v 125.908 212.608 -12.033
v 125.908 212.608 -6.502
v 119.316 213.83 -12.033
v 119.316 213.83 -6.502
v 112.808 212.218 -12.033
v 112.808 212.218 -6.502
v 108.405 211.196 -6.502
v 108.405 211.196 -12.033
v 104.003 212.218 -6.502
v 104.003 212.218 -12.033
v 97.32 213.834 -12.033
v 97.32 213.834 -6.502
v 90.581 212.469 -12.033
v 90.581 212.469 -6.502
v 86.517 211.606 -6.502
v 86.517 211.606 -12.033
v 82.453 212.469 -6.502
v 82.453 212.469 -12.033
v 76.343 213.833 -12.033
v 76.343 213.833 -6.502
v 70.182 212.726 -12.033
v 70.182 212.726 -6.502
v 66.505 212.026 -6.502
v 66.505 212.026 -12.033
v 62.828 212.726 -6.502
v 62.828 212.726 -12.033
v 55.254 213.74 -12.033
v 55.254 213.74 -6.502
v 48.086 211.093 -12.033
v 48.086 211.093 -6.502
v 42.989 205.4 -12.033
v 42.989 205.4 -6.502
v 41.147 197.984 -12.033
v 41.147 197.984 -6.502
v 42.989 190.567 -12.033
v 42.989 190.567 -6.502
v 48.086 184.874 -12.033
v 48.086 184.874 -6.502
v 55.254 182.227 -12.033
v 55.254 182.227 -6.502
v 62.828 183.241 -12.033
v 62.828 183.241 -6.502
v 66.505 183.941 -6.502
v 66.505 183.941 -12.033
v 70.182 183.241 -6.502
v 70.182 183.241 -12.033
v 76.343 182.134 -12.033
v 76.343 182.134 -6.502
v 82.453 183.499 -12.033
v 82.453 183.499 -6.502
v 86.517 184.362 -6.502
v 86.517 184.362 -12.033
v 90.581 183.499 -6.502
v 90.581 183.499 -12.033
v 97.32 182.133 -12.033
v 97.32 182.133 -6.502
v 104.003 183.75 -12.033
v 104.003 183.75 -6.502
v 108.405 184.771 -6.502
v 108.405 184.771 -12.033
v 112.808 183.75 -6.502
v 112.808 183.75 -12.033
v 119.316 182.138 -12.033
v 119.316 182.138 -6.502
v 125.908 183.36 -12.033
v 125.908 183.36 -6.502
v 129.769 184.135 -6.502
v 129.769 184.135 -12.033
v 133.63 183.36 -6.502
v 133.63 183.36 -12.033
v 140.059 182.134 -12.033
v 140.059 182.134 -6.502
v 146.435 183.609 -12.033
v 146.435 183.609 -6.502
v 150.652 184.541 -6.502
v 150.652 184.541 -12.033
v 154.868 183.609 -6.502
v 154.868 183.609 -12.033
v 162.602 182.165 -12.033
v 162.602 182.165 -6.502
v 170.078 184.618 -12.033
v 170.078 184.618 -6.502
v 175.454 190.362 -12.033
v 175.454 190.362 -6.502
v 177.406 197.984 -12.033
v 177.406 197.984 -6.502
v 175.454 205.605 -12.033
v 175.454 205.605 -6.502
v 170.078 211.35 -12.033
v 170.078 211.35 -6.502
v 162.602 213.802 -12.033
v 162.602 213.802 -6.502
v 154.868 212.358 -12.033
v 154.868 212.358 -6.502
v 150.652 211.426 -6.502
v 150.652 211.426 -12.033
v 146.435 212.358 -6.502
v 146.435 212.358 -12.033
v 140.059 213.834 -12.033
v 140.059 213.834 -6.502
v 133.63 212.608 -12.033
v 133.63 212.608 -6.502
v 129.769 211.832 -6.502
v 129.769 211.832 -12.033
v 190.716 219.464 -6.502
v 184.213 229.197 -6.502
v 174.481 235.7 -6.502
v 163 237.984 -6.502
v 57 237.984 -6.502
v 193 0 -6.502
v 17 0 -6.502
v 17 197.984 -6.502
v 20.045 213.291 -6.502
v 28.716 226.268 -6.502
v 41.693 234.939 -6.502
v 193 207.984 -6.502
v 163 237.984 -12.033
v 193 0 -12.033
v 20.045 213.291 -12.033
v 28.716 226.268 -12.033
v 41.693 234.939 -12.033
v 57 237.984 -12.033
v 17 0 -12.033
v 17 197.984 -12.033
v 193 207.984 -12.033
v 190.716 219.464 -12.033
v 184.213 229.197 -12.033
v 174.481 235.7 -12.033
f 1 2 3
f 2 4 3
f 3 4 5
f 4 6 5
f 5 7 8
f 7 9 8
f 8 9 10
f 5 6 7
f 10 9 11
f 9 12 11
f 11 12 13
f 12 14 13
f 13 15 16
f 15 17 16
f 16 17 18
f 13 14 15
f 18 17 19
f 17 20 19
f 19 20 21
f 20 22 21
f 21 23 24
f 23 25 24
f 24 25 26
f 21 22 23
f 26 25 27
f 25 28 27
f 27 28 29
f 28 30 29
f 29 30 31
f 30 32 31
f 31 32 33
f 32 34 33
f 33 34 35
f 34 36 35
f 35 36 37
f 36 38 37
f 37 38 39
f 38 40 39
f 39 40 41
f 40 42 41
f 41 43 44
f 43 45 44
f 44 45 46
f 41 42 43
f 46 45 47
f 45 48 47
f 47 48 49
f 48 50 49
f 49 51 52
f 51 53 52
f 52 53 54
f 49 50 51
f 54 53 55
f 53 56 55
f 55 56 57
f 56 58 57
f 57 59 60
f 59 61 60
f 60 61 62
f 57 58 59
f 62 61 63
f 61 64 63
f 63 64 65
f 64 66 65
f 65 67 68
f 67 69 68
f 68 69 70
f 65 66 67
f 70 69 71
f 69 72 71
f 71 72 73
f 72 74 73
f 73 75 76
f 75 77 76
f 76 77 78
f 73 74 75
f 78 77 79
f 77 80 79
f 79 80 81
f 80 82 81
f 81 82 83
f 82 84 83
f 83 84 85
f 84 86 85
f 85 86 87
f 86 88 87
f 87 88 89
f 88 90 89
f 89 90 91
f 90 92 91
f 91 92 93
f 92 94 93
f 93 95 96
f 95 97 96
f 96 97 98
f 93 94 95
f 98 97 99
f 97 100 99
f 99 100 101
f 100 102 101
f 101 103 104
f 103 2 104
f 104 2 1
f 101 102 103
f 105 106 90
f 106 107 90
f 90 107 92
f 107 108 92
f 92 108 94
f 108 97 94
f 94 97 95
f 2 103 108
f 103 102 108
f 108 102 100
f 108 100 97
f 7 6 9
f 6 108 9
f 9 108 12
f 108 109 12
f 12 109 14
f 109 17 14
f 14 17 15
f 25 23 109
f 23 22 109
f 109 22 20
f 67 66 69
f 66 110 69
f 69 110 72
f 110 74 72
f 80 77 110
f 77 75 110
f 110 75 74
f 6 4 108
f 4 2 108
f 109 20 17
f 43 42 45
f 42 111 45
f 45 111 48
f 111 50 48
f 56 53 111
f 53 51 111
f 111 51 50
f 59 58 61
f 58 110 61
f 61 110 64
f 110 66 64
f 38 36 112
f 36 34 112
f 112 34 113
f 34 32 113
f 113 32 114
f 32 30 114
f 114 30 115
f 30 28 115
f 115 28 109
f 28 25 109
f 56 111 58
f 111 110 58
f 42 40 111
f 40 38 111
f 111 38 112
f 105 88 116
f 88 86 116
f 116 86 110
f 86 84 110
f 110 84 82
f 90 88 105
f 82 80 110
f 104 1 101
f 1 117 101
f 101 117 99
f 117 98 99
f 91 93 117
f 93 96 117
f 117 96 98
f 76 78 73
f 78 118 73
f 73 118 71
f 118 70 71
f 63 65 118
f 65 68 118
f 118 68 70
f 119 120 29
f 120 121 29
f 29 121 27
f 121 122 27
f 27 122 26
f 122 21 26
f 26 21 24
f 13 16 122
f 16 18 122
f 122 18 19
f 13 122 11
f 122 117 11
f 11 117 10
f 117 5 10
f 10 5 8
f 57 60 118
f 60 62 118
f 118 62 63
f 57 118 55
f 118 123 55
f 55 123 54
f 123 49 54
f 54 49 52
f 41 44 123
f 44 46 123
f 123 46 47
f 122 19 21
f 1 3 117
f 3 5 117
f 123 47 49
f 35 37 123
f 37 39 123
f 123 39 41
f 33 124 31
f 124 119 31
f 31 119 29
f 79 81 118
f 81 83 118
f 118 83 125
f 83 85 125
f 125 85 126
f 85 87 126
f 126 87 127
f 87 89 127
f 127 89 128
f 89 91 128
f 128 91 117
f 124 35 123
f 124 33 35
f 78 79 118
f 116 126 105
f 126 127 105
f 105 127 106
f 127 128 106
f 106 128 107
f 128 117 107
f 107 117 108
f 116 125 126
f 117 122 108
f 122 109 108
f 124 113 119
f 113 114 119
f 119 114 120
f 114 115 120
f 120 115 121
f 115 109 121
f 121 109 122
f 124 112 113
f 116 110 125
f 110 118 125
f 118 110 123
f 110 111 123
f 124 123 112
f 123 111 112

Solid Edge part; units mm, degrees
sketch "Sketch1" plane through (0, 0, 0) normal (0, -1, 0) x (1, 0, 0)
  line L0 (17, -12.0333) -> (193, -12.0333)
  line L1 (193, -12.0333) -> (193, -6.5021)
  line L2 (193, -6.5021) -> (17, -6.5021)
  line L3 (17, -6.5021) -> (17, -12.0333)
extrude "Protrusion1" add sketch "Sketch1" against normal blind 237.9836
fillet "Round_1" radius 40 1 edges at (17, 237.9836, -9.2677)
fillet "Round_1" radius 30 1 edges at (193, 237.9836, -9.2677)
sketch "Sketch2" plane through (105, 118.9918, -6.5021) normal (0, 0, 1) x (1, 0, 0)
  arc A0 (28.6296, 93.6158) -> (41.4349, 93.3666) centre (34.7502, 78.9918) cw
  arc A1 (41.4349, 93.3666) -> (49.8683, 93.3666) centre (45.6516, 102.4341) ccw
  arc A2 (49.8683, 64.617) -> (41.4349, 64.617) centre (45.6516, 55.5495) ccw
  arc A3 (28.6296, 64.3678) -> (20.9081, 64.3678) centre (24.7689, 55.1432) ccw
  arc A4 (7.808, 64.7578) -> (-0.9972, 64.7578) centre (3.4054, 55.7791) ccw
  arc A5 (-14.4194, 64.5069) -> (-22.5474, 64.5069) centre (-18.4834, 55.3699) ccw
  arc A6 (-22.5474, 64.5069) -> (-34.8185, 64.249) centre (-28.99, 78.9918) cw
  arc A7 (-34.8185, 64.249) -> (-42.1715, 64.249) centre (-38.495, 54.9494) ccw
  arc A8 (-42.1715, 93.7346) -> (-34.8185, 93.7346) centre (-38.495, 103.0343) ccw
  arc A9 (-22.5474, 93.4768) -> (-14.4194, 93.4768) centre (-18.4834, 102.6137) ccw
  arc A10 (-14.4194, 93.4768) -> (-0.9972, 93.2259) centre (-7.9768, 78.9918) cw
  arc A11 (-0.9972, 93.2259) -> (7.808, 93.2259) centre (3.4054, 102.2045) ccw
  arc A12 (7.808, 93.2259) -> (20.9081, 93.6158) centre (14.7876, 78.9918) cw
  arc A13 (20.9081, 93.6158) -> (28.6296, 93.6158) centre (24.7689, 102.8405) ccw
  arc A14 (49.8683, 93.3666) -> (49.8683, 64.617) centre (56.5531, 78.9918) cw
  arc A15 (41.4349, 64.617) -> (28.6296, 64.3679) centre (34.7502, 78.9918) cw
  arc A16 (20.9081, 64.3678) -> (7.808, 64.7578) centre (14.7876, 78.9918) cw
  arc A17 (-0.9972, 64.7578) -> (-14.4194, 64.5068) centre (-7.9768, 78.9918) cw
  arc A18 (-42.1715, 64.249) -> (-42.1715, 93.7346) centre (-48, 78.9918) cw
  arc A19 (-34.8185, 93.7346) -> (-22.5474, 93.4767) centre (-28.99, 78.9918) cw
extrude "Cutout1" cut sketch "Sketch2" against normal up to vertex (79.4979 mm away)
